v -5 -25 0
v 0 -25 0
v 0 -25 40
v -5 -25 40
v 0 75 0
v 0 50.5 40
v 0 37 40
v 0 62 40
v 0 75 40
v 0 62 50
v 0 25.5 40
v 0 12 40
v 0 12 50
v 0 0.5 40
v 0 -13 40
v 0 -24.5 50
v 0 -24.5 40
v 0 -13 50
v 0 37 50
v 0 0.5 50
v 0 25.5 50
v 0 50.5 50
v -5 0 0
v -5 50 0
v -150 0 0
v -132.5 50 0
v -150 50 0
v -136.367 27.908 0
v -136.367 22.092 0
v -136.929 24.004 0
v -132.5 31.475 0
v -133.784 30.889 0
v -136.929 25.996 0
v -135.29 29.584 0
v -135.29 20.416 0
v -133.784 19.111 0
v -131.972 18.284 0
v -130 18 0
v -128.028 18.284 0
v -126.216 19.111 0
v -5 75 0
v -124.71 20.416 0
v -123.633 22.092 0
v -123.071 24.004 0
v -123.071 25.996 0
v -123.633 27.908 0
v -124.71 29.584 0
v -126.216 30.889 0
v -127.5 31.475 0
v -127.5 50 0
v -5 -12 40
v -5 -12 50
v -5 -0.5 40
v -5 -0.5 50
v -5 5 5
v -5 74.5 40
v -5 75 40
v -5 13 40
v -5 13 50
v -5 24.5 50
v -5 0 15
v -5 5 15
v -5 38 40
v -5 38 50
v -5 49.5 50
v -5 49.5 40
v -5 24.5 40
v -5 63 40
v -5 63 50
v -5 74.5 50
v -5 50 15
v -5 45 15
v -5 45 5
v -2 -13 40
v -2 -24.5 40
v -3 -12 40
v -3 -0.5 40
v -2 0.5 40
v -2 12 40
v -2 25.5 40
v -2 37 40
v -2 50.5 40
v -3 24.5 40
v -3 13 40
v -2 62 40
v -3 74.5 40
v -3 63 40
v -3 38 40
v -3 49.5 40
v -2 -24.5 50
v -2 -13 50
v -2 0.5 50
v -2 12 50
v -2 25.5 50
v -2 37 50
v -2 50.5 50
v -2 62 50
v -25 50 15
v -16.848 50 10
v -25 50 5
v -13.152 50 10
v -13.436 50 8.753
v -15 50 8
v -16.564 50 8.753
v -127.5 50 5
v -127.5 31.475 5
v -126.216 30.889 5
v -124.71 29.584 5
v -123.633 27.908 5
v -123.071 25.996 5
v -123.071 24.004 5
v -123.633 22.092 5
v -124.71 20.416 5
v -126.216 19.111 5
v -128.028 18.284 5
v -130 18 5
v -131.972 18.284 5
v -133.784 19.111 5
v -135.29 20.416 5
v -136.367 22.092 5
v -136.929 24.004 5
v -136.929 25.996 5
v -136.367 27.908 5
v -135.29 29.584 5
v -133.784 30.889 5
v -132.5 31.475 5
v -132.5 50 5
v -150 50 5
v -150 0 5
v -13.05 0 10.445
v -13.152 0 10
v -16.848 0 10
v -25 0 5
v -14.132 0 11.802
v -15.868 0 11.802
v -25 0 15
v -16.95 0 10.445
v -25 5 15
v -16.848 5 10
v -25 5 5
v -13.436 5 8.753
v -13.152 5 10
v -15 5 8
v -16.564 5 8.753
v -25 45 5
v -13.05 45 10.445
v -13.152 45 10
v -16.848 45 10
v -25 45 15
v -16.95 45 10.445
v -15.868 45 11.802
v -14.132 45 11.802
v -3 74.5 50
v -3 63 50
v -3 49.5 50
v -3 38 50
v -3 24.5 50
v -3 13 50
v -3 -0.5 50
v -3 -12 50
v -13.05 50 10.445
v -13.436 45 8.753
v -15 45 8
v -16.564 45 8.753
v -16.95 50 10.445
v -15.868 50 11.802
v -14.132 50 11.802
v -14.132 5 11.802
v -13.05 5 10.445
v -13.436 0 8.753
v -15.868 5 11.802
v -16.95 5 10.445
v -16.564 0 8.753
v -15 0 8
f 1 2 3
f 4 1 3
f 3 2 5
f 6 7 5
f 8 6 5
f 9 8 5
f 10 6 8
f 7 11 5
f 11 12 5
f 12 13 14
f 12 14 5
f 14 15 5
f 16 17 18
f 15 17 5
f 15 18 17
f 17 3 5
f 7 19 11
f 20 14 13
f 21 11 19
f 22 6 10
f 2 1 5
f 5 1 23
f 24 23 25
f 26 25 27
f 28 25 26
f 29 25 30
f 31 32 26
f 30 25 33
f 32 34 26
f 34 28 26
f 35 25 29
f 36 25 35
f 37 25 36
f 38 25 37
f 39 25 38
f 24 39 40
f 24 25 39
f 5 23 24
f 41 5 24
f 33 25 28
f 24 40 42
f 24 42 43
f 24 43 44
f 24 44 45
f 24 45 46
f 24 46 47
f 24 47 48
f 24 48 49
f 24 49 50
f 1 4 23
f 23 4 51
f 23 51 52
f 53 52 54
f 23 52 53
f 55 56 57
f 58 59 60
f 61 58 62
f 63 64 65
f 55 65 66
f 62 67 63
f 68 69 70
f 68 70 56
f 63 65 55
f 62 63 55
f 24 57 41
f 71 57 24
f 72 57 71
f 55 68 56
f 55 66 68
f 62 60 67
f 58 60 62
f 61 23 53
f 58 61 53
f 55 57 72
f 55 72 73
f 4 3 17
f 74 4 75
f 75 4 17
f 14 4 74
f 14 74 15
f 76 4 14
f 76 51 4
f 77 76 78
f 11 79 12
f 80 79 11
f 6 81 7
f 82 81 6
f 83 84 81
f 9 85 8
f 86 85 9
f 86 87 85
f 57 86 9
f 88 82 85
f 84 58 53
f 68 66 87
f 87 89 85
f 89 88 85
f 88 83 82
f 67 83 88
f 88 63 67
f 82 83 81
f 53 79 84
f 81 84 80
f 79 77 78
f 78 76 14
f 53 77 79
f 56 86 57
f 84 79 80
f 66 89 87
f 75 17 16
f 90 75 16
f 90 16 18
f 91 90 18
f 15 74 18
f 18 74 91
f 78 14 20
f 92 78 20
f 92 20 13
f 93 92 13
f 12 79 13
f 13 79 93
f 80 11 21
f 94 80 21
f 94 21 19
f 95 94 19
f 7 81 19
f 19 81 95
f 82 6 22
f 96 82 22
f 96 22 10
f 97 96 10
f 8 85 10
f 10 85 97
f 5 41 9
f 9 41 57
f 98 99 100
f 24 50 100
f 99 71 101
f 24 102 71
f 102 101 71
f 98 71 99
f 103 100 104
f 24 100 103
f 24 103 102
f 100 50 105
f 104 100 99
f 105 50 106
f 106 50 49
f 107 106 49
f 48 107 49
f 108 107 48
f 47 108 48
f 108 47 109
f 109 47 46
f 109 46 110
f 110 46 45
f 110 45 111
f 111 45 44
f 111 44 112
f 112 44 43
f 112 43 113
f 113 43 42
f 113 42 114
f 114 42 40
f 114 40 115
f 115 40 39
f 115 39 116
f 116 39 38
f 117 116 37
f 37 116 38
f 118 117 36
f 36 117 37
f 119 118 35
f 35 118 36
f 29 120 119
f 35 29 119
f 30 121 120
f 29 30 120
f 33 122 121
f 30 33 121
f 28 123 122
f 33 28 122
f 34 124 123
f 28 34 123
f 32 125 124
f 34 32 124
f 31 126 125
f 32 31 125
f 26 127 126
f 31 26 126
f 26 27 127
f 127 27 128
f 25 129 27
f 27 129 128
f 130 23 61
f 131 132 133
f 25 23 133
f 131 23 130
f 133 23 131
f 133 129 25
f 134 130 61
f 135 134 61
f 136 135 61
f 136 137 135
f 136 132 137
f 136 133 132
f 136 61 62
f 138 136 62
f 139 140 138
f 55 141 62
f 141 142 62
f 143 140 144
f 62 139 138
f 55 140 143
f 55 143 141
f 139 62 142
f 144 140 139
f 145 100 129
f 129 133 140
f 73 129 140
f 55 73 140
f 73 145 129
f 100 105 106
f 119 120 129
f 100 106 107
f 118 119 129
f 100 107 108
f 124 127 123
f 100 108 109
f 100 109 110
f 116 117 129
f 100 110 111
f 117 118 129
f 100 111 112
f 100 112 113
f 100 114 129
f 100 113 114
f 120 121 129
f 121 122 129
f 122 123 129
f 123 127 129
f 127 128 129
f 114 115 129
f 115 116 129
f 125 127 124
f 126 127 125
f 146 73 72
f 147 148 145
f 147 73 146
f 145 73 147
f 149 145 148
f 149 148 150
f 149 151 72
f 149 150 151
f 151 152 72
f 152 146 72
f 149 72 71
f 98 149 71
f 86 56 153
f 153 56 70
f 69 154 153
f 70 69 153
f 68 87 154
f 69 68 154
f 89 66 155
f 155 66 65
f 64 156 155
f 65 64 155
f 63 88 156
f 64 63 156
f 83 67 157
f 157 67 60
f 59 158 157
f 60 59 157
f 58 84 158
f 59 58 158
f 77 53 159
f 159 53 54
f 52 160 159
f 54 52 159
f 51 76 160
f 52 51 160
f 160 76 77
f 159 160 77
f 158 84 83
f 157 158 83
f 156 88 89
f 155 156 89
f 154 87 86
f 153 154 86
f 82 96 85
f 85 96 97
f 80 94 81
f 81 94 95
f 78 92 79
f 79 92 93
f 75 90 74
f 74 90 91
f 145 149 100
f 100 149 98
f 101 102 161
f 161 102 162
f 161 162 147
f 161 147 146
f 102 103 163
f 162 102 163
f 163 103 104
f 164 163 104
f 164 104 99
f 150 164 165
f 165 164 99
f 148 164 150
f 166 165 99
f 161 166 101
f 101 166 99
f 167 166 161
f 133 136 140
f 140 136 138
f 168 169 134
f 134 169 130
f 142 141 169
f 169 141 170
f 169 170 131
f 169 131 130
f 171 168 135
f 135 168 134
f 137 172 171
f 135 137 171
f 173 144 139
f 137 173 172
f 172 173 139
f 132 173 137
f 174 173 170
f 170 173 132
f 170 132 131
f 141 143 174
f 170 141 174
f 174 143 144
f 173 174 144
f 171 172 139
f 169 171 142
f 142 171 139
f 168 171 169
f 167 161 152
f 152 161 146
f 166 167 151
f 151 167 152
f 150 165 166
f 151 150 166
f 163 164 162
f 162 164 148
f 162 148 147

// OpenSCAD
thickness = 5;
foot_width = 100;
foot_length = 40;
connector_offset = 0.5;
connector_length = 10;
hole_opener_height = 5;

rotate(90) {
difference() {
	cube([50, 150, thickness]);
	translate([25,130,0]) {cylinder(thickness, r=7);}
	translate([30,130-(hole_opener_height/2),0]) {cube([20, hole_opener_height, thickness]);}
}

translate([-25,0,0]) {
	cube([foot_width, thickness, foot_length]);

	for ( i = [0 : 3] ) {
		translate([i*25,0,foot_length]) {
			translate([connector_offset,0,0]) {cube([foot_width / 8 - (2 * connector_offset),thickness/2 - connector_offset,connector_length]);}
			translate([foot_width / 8 + connector_offset,thickness/2+connector_offset,0]) {cube([foot_width / 8 - (2 * connector_offset),thickness/2 - connector_offset,connector_length]);}
		}
	}
}

difference() {
	translate([45,5,5]) {cube([5,20,10]);}
	for (i = [[45,15,10]]) {
		translate(i) {
			rotate([0,90]) {
				cylinder(thickness, r=2);
			}
		}
	}
}

difference() {
	translate([0,5,5]) {cube([5,20,10]);}
	for (i = [[0,15,10]]) {
		translate(i) {
			rotate([0,90]) {
				cylinder(thickness, r=2);
			}
		}
	}
}

}
